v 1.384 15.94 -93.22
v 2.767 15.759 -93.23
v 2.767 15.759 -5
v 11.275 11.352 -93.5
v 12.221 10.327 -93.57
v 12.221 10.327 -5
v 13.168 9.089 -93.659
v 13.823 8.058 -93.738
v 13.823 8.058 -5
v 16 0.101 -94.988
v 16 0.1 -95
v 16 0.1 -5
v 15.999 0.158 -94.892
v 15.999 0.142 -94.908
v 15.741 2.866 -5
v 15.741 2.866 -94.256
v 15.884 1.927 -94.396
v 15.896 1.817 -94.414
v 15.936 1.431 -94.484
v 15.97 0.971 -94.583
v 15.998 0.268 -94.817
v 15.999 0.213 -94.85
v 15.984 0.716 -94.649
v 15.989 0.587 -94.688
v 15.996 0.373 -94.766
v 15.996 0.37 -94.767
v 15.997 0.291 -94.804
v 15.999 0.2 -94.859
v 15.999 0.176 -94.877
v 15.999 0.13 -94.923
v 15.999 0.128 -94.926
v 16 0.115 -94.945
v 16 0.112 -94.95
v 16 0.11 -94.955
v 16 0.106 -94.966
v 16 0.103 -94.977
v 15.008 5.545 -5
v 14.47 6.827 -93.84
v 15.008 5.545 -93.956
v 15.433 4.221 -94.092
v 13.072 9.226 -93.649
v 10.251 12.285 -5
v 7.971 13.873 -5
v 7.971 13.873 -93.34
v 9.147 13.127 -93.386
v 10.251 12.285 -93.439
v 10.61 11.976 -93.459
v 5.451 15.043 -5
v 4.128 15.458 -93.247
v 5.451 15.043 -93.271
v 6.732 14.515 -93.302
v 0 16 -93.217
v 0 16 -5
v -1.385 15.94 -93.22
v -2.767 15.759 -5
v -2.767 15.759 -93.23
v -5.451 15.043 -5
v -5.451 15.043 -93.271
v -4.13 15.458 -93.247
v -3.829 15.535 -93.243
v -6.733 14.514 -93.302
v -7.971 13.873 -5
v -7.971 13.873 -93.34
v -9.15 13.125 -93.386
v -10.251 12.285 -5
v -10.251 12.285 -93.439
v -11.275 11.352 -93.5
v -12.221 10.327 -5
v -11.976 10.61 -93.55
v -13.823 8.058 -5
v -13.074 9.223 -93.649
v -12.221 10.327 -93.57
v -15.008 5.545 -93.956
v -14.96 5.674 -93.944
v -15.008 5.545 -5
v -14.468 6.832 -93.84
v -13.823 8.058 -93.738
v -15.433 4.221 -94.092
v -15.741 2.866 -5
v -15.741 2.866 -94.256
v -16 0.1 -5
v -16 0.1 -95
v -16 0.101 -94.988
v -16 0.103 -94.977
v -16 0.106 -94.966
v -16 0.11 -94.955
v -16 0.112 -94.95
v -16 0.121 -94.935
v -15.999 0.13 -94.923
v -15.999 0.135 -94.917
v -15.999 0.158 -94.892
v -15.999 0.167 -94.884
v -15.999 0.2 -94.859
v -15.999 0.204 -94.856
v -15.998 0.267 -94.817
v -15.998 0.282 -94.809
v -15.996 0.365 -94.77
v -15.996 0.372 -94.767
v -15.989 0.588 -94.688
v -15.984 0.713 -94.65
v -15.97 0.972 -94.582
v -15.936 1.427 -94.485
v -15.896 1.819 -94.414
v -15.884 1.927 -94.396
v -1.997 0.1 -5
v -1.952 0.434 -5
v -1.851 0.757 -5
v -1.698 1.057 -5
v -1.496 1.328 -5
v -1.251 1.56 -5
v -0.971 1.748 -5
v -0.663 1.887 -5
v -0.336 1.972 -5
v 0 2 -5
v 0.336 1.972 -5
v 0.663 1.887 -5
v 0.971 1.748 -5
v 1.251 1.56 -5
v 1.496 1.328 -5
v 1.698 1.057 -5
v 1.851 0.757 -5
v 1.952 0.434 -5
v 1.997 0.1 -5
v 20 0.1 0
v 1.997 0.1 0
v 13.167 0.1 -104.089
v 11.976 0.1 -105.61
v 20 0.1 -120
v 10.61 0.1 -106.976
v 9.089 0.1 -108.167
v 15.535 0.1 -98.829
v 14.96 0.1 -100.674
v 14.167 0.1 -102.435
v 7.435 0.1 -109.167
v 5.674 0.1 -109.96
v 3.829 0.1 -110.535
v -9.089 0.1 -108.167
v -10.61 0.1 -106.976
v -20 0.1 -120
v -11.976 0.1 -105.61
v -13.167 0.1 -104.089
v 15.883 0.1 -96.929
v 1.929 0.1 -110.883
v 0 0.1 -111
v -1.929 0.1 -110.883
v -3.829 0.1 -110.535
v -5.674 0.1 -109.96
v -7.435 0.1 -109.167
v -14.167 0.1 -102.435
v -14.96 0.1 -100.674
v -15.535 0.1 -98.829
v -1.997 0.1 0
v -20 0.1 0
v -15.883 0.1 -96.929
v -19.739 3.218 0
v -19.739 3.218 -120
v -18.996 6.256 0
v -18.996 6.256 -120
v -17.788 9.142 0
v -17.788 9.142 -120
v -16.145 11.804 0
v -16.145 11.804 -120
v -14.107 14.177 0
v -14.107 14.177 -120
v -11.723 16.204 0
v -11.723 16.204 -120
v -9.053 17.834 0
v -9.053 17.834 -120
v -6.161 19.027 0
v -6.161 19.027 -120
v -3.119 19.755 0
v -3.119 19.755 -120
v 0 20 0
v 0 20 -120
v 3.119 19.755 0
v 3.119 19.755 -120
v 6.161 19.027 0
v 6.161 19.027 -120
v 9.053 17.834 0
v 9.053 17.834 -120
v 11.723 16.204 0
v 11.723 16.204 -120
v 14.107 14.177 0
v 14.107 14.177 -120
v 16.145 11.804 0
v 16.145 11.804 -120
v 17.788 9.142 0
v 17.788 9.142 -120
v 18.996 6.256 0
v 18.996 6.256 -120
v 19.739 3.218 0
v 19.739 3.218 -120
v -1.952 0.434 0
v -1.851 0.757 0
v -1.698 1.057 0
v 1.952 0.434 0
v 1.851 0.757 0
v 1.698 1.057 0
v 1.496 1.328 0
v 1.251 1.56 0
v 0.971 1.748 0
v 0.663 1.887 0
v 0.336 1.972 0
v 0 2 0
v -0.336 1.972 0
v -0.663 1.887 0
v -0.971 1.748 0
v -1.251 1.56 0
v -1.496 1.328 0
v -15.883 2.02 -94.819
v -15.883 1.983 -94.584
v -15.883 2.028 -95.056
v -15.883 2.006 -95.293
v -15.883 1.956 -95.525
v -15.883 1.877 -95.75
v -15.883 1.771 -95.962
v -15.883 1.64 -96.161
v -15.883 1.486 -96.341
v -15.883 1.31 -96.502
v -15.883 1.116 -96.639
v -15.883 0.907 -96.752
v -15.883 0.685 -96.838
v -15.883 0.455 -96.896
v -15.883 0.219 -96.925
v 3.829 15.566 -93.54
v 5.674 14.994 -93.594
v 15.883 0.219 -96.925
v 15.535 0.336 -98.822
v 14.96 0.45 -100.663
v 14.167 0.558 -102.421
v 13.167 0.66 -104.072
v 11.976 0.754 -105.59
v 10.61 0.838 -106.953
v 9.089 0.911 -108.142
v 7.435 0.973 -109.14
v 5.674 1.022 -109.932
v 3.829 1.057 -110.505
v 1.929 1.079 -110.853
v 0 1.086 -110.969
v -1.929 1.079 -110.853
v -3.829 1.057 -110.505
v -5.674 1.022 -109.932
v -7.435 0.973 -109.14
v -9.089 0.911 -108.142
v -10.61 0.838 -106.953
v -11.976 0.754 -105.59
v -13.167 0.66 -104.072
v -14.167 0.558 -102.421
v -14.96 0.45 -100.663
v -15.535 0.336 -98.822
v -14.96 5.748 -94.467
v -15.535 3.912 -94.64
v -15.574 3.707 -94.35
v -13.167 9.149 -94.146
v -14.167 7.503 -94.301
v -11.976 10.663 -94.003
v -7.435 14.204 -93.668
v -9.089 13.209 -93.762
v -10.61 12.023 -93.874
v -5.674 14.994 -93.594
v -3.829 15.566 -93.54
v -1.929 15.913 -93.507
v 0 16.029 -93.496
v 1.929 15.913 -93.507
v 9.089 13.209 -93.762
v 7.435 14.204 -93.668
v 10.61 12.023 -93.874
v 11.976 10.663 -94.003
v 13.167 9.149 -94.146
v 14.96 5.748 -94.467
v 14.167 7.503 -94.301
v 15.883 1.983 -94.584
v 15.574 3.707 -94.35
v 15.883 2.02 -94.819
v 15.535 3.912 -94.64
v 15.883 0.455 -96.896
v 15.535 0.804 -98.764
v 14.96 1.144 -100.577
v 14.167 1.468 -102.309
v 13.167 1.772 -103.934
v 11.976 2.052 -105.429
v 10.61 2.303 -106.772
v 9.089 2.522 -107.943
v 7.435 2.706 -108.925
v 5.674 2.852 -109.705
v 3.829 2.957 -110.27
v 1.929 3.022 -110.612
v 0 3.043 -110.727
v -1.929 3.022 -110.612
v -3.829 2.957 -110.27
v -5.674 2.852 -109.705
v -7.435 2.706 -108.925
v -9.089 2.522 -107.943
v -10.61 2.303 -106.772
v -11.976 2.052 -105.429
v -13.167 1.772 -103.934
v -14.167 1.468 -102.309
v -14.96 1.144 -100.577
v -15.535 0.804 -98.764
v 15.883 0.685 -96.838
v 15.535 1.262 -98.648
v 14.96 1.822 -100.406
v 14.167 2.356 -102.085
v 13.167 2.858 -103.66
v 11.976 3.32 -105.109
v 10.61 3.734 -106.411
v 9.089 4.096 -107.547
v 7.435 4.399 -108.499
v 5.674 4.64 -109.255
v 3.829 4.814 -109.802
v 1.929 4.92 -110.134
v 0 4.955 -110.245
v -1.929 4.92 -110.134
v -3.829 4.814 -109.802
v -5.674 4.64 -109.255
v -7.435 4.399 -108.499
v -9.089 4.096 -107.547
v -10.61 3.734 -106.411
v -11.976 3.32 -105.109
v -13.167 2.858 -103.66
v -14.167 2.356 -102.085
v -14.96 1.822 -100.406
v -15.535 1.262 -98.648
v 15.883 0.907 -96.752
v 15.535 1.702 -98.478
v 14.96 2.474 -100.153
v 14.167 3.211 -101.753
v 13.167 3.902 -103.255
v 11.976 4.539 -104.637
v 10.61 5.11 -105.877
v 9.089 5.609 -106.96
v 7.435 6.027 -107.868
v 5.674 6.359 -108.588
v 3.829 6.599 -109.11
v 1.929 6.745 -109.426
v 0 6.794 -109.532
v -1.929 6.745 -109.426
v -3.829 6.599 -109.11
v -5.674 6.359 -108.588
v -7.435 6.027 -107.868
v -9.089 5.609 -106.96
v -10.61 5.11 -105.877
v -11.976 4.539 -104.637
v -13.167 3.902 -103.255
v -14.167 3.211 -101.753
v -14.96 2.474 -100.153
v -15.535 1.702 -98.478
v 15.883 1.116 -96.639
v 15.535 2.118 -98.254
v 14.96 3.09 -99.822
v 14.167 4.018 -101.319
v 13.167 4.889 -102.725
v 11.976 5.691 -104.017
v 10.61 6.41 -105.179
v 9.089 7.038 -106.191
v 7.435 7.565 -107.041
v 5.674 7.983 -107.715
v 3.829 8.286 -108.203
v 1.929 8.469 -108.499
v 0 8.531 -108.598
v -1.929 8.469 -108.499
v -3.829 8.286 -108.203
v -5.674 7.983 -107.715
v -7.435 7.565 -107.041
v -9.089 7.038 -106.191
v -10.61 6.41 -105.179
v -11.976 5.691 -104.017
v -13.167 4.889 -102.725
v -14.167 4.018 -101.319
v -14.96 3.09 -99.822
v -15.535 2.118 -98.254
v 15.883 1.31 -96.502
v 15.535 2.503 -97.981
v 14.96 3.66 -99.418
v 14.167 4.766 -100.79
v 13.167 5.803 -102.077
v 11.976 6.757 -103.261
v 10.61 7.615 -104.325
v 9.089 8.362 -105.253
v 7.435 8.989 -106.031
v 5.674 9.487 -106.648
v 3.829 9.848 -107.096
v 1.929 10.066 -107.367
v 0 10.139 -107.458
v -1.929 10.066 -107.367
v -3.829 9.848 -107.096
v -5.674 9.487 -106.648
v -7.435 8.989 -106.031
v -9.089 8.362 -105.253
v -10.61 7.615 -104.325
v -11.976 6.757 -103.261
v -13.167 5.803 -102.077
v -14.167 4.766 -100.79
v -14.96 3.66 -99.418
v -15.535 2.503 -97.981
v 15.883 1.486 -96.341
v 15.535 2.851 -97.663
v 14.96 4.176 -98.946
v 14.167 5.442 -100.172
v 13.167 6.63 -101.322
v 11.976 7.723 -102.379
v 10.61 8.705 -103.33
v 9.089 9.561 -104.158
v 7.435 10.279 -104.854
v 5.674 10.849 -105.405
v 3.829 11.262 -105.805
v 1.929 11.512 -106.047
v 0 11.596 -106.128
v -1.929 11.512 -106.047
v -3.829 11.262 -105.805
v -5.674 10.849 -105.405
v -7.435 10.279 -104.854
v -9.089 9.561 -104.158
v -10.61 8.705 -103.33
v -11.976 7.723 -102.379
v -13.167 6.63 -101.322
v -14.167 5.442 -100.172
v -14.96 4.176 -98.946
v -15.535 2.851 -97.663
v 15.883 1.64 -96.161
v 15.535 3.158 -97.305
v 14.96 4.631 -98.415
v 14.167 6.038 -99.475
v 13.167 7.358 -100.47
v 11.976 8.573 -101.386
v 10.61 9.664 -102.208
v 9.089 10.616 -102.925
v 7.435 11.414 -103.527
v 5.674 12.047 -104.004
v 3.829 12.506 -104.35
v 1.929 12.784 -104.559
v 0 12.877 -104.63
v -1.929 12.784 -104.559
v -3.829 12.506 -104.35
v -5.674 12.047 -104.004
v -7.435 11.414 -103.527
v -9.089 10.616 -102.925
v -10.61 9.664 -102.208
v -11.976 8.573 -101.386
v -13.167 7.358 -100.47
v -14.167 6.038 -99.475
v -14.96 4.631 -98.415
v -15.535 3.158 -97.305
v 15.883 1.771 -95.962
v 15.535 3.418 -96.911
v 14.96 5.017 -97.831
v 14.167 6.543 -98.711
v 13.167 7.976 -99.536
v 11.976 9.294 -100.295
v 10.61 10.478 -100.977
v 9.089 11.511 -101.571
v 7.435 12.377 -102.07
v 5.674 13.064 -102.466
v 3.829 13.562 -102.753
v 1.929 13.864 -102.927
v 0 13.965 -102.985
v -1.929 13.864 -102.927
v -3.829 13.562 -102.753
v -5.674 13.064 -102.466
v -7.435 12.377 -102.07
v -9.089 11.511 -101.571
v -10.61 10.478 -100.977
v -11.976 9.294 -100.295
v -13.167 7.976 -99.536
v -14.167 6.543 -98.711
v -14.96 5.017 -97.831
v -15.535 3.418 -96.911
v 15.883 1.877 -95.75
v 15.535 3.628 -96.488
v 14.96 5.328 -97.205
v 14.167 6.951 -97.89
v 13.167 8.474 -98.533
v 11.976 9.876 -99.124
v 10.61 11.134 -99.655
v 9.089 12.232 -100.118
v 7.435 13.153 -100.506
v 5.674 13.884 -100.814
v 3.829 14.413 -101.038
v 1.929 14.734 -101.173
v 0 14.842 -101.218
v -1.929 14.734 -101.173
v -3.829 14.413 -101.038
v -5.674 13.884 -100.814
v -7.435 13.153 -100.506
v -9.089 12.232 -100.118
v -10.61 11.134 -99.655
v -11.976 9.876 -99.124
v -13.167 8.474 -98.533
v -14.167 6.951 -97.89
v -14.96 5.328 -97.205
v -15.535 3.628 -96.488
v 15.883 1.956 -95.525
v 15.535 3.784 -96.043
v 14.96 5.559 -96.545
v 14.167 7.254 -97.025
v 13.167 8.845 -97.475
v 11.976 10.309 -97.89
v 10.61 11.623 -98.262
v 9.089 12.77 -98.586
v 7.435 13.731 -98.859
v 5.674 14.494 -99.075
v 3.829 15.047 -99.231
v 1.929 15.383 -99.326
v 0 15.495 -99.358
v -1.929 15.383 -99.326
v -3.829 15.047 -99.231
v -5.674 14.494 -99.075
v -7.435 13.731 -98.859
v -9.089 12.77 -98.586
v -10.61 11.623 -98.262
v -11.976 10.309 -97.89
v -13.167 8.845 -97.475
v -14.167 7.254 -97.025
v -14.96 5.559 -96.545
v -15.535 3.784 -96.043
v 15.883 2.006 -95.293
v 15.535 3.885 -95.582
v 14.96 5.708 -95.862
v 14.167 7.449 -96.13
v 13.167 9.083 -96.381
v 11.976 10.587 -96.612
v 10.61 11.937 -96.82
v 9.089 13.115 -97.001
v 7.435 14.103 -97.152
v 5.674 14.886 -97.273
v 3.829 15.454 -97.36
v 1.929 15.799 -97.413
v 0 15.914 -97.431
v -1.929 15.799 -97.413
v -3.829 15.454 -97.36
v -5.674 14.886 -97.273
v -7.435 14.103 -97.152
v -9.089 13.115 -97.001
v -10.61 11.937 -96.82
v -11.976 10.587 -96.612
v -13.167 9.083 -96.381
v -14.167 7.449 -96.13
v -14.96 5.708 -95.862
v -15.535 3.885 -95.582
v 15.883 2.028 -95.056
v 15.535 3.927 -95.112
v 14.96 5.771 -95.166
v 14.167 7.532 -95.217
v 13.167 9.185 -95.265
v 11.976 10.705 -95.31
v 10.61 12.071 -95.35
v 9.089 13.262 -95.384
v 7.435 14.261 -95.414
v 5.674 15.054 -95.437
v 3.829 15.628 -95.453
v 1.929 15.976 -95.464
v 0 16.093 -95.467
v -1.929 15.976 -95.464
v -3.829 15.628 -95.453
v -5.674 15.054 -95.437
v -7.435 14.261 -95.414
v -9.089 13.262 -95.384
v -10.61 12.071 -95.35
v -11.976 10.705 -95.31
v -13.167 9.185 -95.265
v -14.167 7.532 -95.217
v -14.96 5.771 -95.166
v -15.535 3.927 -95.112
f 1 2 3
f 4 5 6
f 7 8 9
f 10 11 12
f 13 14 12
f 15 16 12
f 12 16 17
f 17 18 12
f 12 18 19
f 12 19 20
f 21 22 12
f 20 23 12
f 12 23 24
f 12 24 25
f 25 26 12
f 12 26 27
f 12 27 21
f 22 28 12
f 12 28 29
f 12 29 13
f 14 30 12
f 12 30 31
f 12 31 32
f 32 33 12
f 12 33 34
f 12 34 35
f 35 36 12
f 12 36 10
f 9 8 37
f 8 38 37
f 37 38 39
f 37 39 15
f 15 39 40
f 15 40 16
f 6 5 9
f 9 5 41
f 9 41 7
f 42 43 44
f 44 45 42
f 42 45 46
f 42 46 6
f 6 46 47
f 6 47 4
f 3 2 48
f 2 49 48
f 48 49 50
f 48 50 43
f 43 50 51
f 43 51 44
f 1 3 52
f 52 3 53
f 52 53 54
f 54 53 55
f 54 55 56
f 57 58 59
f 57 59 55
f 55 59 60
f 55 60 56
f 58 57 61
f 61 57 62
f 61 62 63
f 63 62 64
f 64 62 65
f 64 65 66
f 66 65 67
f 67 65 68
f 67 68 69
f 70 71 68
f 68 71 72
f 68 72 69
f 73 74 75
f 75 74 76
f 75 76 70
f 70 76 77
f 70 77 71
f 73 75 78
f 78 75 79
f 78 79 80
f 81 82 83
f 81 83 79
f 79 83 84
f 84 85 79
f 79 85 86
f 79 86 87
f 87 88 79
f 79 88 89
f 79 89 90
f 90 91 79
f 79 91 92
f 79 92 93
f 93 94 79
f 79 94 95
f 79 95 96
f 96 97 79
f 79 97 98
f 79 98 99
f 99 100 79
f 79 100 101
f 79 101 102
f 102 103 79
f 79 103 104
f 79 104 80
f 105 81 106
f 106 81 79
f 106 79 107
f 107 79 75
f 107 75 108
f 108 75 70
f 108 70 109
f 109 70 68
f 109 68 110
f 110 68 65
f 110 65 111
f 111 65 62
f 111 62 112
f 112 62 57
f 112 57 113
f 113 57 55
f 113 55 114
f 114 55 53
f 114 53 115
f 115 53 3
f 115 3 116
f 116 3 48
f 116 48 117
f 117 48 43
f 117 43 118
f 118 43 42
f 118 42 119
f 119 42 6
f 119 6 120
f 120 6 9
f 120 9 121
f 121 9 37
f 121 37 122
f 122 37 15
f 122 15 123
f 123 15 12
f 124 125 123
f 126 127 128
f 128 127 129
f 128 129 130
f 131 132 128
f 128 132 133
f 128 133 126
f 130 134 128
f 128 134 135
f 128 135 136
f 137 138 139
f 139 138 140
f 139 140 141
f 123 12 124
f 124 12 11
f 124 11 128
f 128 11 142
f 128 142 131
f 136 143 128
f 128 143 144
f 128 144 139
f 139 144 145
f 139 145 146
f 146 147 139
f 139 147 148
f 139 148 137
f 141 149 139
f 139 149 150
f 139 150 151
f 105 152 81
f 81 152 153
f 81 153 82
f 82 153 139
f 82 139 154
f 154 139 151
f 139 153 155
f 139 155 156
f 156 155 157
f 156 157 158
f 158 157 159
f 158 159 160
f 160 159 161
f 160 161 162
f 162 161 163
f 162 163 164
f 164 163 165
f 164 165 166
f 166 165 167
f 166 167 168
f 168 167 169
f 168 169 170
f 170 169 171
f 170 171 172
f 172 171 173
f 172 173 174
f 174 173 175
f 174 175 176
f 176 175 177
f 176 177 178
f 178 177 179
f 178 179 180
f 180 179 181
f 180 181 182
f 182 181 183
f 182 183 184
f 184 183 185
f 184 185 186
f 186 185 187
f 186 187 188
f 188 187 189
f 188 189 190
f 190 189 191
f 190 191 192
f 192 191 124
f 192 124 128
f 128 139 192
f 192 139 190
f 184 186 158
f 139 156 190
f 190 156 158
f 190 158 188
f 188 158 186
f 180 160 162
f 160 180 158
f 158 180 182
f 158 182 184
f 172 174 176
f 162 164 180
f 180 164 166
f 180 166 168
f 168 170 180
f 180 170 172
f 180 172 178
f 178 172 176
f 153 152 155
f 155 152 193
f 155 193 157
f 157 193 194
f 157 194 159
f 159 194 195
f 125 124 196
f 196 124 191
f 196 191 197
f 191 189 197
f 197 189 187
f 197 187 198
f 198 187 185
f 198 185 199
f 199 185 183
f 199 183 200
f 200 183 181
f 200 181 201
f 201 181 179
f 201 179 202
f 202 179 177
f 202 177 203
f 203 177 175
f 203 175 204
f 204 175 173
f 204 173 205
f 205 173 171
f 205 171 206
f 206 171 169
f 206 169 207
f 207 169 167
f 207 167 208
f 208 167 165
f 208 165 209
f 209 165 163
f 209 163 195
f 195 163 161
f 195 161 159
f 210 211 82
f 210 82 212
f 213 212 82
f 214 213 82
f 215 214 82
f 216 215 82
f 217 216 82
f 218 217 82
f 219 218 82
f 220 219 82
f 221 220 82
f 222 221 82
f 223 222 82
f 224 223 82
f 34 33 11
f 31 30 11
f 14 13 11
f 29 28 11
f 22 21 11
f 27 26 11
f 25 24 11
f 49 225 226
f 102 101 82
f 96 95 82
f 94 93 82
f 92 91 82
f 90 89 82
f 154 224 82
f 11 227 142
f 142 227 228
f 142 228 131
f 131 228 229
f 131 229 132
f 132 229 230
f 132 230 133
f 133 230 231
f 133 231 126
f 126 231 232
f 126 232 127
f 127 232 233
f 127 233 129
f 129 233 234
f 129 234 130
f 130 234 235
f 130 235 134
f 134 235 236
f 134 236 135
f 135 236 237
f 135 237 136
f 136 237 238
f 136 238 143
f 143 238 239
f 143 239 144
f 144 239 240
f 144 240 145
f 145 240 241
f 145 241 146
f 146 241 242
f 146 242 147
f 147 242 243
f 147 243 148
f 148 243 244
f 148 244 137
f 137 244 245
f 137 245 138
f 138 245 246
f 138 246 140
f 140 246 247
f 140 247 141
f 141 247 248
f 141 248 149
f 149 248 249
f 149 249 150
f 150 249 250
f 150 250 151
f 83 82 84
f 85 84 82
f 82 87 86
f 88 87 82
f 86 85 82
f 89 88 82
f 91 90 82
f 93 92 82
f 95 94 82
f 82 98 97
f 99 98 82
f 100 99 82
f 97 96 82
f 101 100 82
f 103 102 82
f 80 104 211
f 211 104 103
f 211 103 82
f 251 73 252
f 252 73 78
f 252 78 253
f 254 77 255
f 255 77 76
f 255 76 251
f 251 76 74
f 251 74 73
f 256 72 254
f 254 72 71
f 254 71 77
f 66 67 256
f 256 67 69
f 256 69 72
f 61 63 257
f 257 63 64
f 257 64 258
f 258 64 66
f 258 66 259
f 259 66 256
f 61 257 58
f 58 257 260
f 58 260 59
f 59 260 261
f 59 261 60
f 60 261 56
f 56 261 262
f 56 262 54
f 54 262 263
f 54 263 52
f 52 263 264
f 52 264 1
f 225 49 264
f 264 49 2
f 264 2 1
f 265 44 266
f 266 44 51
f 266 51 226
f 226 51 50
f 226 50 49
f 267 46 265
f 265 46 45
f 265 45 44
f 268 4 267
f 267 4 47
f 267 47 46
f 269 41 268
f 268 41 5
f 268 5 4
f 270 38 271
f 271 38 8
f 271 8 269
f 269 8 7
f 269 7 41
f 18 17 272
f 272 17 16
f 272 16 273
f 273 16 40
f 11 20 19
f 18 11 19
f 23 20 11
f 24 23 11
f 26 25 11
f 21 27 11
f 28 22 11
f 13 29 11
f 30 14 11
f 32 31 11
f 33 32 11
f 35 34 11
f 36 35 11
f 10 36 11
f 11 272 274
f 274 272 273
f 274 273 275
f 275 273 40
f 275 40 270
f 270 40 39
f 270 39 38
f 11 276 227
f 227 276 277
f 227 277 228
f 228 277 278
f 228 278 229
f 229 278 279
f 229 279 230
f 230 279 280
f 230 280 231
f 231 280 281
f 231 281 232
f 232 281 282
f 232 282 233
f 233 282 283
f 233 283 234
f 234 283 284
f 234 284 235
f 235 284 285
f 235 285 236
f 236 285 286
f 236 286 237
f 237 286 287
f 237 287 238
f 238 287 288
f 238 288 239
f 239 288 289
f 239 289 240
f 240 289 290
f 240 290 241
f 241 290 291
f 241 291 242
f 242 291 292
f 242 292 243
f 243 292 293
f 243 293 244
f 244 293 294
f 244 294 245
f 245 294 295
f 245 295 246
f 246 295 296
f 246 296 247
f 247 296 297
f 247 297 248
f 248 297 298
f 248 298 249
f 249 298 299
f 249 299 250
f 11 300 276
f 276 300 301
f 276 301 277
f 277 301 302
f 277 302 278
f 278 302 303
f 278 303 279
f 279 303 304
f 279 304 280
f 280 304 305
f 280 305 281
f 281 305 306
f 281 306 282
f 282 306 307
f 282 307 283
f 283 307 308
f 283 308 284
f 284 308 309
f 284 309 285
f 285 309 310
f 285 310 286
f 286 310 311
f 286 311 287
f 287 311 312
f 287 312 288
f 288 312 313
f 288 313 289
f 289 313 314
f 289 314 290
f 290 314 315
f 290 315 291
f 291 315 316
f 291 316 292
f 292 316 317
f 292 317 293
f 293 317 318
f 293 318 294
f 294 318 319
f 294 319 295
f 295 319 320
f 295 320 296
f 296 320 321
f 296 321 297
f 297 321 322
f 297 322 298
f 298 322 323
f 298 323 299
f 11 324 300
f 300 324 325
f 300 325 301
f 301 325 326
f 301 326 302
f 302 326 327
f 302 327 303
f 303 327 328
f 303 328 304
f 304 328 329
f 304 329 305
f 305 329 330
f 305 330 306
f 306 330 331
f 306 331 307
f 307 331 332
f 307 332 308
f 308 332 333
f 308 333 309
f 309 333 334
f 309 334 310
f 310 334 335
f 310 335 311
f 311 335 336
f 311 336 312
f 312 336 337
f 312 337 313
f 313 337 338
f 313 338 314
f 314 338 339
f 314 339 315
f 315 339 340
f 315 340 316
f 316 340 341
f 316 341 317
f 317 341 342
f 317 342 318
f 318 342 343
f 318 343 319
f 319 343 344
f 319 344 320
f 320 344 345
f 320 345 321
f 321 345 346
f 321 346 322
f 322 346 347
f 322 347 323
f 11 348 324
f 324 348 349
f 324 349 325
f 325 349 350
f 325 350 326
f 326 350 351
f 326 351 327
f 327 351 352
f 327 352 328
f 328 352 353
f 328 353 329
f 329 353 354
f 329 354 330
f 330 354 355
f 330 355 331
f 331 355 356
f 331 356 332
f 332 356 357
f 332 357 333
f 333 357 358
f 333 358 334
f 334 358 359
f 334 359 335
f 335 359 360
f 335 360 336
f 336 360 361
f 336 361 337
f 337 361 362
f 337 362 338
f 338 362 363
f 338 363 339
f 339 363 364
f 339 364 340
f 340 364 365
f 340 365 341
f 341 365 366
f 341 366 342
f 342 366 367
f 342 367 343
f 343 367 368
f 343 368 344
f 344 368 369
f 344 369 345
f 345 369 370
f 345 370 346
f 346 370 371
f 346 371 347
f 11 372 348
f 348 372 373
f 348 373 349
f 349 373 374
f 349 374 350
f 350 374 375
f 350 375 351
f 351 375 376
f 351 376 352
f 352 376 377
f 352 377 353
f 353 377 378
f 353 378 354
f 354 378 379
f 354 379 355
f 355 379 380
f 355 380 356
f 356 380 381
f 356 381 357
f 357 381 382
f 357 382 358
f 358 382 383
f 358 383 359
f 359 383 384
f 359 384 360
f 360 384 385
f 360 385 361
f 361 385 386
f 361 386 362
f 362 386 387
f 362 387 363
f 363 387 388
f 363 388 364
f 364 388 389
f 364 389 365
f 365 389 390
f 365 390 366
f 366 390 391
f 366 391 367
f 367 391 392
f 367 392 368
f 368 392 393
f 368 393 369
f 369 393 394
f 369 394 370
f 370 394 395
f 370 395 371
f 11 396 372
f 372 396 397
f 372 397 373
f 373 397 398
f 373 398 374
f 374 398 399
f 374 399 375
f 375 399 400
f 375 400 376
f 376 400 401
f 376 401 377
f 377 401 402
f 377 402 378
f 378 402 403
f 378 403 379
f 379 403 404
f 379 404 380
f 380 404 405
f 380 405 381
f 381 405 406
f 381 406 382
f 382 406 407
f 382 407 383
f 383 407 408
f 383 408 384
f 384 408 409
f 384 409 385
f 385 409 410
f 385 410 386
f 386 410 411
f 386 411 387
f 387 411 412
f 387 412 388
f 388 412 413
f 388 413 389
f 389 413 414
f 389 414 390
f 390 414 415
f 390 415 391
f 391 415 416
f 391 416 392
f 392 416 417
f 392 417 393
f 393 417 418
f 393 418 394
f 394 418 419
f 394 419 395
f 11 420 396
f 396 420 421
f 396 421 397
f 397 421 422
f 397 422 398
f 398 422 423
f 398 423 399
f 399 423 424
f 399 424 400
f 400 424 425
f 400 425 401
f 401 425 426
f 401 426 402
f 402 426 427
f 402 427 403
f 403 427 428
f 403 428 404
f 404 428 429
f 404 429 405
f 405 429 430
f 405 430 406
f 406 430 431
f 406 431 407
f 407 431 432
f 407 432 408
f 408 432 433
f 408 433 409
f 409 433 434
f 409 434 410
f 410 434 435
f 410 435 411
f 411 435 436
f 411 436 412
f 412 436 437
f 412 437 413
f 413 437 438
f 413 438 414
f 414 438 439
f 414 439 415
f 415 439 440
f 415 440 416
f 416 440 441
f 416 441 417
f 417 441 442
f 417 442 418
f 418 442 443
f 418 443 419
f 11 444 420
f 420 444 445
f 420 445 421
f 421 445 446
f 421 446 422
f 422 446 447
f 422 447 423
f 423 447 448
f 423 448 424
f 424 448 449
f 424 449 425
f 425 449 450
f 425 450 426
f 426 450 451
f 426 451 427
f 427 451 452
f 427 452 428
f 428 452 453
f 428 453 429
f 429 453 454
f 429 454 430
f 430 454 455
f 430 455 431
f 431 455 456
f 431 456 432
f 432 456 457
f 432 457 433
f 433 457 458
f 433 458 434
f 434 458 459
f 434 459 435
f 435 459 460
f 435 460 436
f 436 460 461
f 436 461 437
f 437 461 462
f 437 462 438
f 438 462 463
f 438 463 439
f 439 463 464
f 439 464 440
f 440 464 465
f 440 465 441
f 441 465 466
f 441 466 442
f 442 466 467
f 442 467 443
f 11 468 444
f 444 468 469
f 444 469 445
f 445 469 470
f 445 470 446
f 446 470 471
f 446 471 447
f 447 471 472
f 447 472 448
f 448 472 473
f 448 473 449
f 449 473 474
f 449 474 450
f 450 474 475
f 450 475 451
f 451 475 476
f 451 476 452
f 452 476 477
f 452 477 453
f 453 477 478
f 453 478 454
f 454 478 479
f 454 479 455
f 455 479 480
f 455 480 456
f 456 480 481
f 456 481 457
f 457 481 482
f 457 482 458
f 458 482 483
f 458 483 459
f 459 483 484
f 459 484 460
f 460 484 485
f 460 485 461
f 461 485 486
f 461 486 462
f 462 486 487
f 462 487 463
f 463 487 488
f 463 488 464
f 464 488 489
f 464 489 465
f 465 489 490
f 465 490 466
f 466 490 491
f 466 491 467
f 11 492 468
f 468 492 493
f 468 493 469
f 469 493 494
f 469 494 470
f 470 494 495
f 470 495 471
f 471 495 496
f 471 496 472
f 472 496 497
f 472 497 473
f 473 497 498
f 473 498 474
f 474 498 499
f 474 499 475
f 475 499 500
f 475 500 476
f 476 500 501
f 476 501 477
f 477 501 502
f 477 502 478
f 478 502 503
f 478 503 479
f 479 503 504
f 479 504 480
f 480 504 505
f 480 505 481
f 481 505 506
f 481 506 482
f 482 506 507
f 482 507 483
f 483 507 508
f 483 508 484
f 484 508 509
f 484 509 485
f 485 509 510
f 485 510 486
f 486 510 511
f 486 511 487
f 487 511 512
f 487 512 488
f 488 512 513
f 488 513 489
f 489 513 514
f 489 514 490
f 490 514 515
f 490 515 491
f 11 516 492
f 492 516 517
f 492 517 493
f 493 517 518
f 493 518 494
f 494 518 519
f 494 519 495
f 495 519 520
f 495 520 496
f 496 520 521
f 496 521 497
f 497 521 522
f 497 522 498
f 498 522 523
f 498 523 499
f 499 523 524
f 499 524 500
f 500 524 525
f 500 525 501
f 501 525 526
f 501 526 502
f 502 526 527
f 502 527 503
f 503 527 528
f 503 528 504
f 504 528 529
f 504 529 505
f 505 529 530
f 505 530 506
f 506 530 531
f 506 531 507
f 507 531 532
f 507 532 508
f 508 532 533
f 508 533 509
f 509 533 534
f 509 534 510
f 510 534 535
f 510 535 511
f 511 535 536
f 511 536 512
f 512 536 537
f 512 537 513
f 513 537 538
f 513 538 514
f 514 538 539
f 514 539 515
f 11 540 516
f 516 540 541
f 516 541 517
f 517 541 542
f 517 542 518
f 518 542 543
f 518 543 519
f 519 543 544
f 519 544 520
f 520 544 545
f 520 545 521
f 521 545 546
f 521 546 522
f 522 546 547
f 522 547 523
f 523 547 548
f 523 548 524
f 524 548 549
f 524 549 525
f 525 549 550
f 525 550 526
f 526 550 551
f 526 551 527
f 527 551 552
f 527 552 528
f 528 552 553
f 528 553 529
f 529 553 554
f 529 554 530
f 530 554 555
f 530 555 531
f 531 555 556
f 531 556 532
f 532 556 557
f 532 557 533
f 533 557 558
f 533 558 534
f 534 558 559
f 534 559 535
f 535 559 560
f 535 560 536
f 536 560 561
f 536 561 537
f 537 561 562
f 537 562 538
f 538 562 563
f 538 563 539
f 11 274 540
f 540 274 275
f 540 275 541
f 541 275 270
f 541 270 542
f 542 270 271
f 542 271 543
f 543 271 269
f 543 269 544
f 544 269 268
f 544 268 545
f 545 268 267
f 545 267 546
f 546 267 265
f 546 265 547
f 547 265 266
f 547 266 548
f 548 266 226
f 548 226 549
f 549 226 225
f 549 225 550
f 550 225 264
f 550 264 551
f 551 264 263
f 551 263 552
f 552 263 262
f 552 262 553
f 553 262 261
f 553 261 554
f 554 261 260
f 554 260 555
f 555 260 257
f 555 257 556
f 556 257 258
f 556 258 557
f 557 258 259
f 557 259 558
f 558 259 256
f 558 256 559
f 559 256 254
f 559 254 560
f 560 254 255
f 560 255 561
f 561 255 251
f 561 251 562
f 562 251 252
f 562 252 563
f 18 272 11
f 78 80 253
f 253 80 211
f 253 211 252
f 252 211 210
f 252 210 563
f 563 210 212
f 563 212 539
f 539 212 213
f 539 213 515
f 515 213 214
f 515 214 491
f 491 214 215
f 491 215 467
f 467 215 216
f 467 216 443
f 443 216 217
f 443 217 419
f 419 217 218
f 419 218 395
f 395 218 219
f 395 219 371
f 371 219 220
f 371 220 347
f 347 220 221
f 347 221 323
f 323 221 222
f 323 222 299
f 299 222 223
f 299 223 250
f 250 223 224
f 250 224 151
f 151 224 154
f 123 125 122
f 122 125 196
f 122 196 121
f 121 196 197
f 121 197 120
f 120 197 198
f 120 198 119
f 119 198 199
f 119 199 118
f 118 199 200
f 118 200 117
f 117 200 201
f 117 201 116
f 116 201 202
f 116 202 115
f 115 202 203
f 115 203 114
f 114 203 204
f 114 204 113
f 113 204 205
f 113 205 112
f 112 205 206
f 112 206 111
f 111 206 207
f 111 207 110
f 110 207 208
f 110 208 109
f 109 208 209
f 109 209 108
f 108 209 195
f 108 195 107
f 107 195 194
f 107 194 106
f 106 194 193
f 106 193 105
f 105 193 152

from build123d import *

# Parameters (mm, degrees)
ESQUISSE1_R             = 20
BOSS_EXTRU_1_DEPTH      = 120
ESQUISSE3_R             = 16
ENL_V_MAT_EXTRU_1_DEPTH = 90
ENL_V_MAT_EXTRU_3_DEPTH = 140
ESQUISSE9_R             = 2
ENL_V_MAT_EXTRU_4_DEPTH = 10


with BuildPart() as part:
    # Esquisse1 → Boss.-Extru.1 (new body)
    with BuildSketch(Plane.XY):
        Circle(ESQUISSE1_R)
    extrude(amount=-BOSS_EXTRU_1_DEPTH)

    # Esquisse3 → Enlèv. mat.-Extru.1 (cut)
    with BuildSketch(Plane.XY.offset(-5)):
        Circle(ESQUISSE3_R)
    extrude(amount=-ENL_V_MAT_EXTRU_1_DEPTH, mode=Mode.SUBTRACT)

    # Esquisse6 → Enlèv. mat.-Extru.3 (cut)
    with BuildSketch(Plane(origin=(0, 0, -120), x_dir=(-1, 0, 0), z_dir=(0, 0, -1))):
        Polygon((-21.427885592, 0), (-21.427885592, -0.1), (22.282526064, -0.1), (22.282526064, 0.1), (-21.427885592, 0.1), align=None)
    extrude(amount=-ENL_V_MAT_EXTRU_3_DEPTH, mode=Mode.SUBTRACT)


with BuildPart() as body_2:
    # of the pieces the cut leaves, the one that is kept (enl_v_mat_extru_3_keep)
    add(part.part.solids().sort_by_distance((19.999749998, 0.1, 0))[0])

    # Esquisse8 → Enlèvement de matière-Révolution3 (revolve, cut)
    with BuildSketch(Plane.XZ.offset(-0.1)):
        with BuildLine():
            Line((-15.999687497, -95), (15.999687497, -95))
            ThreePointArc((15.999687497, -95), (0, -79.000312503), (-15.999687497, -95))
        make_face()
    revolve(axis=Axis((-15.999687497, 0.1, -95), (1, 0, 0)), mode=Mode.SUBTRACT)

    # Esquisse9 → Enlèv. mat.-Extru.4 (cut)
    with BuildSketch(Plane.XY):
        Circle(ESQUISSE9_R)
    extrude(amount=-ENL_V_MAT_EXTRU_4_DEPTH, mode=Mode.SUBTRACT)


solid = body_2.part
